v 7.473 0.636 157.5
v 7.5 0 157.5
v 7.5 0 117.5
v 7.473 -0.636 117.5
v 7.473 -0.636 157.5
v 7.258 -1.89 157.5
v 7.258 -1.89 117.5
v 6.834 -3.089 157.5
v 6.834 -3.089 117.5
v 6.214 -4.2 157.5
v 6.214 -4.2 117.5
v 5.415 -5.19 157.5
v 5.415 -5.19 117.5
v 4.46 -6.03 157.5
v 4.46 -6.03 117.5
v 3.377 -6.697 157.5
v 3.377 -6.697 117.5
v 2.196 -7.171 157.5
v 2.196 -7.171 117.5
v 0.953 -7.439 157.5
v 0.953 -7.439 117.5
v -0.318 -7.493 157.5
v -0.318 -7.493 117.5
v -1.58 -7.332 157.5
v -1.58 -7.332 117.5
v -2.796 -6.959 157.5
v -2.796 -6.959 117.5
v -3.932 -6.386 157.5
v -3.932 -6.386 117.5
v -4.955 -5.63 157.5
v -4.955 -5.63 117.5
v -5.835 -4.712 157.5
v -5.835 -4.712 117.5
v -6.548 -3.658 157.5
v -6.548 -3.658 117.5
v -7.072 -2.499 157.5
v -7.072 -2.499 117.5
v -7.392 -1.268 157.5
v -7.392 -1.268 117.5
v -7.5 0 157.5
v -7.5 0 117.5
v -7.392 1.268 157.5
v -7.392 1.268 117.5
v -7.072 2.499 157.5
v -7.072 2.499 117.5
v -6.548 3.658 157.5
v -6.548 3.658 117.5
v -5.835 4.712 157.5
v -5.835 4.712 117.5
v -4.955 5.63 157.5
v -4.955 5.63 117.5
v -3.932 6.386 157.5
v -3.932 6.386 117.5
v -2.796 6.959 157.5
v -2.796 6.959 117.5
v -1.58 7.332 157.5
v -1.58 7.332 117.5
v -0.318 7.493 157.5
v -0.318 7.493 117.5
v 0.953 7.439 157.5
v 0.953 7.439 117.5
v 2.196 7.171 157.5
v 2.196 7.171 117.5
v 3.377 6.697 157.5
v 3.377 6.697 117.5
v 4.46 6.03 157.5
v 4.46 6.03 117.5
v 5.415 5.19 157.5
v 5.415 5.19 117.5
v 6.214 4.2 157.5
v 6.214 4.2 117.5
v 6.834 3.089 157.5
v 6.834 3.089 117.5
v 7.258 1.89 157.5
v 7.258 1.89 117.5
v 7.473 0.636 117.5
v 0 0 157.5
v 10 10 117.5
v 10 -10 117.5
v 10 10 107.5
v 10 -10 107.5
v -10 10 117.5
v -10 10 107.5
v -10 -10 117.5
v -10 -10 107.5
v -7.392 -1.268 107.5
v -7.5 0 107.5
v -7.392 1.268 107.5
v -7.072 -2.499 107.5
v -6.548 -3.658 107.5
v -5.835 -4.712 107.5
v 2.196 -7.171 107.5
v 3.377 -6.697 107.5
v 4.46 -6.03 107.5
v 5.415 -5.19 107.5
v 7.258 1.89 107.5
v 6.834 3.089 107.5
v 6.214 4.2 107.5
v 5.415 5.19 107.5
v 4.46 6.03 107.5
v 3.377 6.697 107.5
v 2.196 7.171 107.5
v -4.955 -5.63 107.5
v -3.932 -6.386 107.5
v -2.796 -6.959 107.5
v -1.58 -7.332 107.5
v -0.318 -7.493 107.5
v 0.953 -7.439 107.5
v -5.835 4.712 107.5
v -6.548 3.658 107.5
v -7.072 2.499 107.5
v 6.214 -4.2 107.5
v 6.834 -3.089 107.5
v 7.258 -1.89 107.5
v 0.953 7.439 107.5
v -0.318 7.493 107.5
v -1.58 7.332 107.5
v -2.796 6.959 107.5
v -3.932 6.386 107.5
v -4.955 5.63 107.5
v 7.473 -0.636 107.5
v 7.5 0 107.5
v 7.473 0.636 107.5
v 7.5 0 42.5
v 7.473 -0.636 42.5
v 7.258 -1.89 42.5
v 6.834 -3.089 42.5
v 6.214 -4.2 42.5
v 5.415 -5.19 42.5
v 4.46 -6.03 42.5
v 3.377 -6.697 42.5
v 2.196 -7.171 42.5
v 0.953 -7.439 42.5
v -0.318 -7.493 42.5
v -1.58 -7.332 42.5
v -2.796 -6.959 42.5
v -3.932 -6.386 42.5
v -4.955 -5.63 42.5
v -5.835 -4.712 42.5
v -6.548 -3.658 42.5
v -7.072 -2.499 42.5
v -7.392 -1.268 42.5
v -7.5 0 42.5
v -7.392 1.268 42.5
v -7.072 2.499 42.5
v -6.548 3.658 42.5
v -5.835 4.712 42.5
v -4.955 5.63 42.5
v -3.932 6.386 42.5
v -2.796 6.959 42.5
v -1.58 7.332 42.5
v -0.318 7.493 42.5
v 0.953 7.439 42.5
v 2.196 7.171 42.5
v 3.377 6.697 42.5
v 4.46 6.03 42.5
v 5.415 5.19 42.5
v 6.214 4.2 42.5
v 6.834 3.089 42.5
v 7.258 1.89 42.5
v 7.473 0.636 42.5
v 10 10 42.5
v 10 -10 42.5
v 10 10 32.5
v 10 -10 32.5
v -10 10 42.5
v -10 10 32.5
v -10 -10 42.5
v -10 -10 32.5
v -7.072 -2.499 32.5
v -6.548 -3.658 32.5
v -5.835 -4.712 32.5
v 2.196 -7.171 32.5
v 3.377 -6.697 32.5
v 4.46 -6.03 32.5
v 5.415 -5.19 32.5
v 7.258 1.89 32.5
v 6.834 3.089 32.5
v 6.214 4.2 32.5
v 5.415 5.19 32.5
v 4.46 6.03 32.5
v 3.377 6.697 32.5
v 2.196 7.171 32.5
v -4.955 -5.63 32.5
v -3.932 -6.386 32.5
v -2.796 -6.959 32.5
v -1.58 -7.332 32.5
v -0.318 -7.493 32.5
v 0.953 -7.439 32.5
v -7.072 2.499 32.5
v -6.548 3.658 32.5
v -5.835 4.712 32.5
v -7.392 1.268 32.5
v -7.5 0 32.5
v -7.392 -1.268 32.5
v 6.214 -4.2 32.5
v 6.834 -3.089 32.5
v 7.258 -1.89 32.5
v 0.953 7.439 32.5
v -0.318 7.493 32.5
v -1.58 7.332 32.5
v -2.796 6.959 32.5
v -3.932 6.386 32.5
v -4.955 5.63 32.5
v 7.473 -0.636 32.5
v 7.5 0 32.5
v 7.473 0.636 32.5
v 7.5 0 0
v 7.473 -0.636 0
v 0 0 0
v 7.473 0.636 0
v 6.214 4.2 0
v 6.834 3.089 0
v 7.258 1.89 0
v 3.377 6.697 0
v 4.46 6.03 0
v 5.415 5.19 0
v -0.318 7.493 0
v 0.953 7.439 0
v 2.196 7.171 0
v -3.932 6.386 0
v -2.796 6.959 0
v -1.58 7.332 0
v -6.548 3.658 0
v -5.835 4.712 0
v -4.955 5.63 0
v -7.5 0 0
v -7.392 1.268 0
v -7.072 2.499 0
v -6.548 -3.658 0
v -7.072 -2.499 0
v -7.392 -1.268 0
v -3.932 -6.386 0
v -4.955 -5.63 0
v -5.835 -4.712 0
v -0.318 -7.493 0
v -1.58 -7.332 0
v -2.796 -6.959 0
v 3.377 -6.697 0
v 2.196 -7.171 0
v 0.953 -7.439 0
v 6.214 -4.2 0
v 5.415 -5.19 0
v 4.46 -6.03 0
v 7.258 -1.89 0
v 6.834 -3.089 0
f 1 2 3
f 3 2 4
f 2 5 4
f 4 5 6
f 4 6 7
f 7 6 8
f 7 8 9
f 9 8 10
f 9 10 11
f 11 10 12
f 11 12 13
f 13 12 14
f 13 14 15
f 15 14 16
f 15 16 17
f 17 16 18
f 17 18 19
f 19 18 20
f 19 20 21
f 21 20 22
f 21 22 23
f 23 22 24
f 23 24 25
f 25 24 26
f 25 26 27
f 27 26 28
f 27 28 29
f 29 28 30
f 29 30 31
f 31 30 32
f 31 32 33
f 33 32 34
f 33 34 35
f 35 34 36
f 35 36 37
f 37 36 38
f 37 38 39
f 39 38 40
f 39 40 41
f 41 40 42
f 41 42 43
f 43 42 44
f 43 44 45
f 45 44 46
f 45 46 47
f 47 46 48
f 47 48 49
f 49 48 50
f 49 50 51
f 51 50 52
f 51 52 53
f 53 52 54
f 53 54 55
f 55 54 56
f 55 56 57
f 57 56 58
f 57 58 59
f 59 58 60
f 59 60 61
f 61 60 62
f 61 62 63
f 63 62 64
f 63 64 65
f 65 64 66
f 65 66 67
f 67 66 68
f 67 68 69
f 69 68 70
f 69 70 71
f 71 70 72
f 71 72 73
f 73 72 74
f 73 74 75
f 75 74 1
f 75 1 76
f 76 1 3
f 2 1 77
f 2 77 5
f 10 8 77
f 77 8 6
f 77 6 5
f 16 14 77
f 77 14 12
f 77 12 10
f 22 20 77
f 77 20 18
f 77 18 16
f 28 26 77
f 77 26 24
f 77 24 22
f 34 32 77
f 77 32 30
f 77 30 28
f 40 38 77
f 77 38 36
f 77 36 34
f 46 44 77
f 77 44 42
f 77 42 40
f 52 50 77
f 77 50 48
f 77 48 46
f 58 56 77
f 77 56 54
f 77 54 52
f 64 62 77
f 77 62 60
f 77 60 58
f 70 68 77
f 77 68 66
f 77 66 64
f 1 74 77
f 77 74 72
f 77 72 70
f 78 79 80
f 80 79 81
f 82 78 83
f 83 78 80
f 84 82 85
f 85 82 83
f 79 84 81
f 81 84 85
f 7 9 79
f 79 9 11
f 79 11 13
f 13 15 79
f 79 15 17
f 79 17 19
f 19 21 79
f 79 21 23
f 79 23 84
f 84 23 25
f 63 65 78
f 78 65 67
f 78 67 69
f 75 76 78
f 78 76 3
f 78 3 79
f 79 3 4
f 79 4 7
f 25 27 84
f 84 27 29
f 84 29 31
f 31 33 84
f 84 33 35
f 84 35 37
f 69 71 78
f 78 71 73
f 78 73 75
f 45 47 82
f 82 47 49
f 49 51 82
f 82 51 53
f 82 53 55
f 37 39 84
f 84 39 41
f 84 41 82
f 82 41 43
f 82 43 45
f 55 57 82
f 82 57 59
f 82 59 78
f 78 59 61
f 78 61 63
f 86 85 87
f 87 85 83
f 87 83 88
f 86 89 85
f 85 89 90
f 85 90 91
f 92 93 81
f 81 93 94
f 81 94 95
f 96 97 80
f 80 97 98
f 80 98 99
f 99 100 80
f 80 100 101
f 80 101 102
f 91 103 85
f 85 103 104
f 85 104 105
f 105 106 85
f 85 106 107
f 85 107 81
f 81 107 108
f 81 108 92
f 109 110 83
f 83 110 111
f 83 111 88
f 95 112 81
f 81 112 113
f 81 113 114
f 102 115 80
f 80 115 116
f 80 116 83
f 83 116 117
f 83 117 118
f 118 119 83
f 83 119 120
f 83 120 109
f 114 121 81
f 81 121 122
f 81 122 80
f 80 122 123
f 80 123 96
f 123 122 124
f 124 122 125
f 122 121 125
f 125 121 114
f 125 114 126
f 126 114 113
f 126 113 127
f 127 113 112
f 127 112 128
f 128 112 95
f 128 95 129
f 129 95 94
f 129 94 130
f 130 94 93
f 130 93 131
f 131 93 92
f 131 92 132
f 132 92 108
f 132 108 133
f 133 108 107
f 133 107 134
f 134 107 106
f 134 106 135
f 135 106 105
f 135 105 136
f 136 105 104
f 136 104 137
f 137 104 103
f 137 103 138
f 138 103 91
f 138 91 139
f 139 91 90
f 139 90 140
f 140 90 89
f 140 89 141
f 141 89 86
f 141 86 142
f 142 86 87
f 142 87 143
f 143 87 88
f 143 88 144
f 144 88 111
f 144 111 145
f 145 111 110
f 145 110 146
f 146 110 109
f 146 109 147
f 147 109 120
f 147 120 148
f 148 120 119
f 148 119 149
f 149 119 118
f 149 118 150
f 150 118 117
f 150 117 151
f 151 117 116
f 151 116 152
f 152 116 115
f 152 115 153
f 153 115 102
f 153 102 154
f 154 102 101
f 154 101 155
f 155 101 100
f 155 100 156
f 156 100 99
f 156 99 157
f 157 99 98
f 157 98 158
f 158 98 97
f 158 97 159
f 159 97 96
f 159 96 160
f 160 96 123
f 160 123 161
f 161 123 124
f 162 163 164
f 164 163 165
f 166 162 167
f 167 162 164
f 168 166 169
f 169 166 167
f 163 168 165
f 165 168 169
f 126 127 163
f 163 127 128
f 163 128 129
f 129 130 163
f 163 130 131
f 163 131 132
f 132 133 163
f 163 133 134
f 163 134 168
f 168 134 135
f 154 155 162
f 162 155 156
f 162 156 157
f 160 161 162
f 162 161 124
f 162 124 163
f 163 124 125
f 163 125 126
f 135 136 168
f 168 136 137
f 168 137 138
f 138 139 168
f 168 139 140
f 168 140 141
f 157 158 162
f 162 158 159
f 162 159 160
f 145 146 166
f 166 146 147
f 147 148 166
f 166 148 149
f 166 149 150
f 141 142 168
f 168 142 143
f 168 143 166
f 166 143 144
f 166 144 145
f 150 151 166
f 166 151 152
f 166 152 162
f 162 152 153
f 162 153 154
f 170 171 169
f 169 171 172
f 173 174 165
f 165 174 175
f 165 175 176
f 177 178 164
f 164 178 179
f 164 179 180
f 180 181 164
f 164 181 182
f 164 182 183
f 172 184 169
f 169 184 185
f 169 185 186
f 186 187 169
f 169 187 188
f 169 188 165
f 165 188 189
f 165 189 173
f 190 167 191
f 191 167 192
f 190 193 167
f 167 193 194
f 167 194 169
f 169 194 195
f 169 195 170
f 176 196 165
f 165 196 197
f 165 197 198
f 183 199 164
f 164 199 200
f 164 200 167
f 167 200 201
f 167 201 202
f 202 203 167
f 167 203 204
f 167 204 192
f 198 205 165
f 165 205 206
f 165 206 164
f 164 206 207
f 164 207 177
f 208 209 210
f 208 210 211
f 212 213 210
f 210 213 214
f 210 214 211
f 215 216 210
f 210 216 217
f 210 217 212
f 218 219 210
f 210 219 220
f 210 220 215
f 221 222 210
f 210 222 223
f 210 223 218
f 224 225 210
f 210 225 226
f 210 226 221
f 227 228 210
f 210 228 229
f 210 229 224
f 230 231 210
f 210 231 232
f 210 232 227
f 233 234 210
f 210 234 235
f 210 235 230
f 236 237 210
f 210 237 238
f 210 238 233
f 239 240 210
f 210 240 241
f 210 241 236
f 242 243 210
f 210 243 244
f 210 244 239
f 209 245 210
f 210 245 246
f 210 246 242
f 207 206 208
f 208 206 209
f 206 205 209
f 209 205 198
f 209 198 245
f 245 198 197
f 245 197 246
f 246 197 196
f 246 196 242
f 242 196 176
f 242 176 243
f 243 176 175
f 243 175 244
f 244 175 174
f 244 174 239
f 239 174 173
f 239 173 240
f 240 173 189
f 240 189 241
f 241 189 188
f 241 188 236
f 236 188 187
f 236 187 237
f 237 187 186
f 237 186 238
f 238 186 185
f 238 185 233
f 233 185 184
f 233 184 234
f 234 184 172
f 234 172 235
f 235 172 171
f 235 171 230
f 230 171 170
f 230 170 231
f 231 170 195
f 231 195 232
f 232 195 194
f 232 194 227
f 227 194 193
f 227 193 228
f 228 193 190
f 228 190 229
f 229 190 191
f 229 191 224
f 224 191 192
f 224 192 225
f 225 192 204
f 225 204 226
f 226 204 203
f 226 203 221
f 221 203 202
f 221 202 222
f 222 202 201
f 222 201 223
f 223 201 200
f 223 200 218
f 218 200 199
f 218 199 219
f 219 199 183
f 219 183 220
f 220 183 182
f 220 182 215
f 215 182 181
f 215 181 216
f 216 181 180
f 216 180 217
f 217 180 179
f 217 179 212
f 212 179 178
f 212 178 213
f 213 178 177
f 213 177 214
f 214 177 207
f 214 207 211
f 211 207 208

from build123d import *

# Parameters (mm, degrees)
SKETCH1_R           = 7.5
BOSS_EXTRUDE1_DEPTH = 157.5
SKETCH2_W           = 20
SKETCH2_H           = 20
BOSS_EXTRUDE2_DEPTH = 10
SKETCH3_W           = 20
SKETCH3_H           = 20
BOSS_EXTRUDE3_DEPTH = 10


with BuildPart() as part:
    # Sketch1 → Boss-Extrude1 (new body)
    with BuildSketch(Plane.XY):
        Circle(SKETCH1_R)
    extrude(amount=BOSS_EXTRUDE1_DEPTH)

    # Sketch2 → Boss-Extrude2 (add)
    with BuildSketch(Plane.XY.offset(107.5)):
        Rectangle(SKETCH2_W, SKETCH2_H)
    extrude(amount=BOSS_EXTRUDE2_DEPTH)

    # Sketch3 → Boss-Extrude3 (add)
    with BuildSketch(Plane.XY.offset(32.5)):
        Rectangle(SKETCH3_W, SKETCH3_H)
    extrude(amount=BOSS_EXTRUDE3_DEPTH)


solid = part.part
